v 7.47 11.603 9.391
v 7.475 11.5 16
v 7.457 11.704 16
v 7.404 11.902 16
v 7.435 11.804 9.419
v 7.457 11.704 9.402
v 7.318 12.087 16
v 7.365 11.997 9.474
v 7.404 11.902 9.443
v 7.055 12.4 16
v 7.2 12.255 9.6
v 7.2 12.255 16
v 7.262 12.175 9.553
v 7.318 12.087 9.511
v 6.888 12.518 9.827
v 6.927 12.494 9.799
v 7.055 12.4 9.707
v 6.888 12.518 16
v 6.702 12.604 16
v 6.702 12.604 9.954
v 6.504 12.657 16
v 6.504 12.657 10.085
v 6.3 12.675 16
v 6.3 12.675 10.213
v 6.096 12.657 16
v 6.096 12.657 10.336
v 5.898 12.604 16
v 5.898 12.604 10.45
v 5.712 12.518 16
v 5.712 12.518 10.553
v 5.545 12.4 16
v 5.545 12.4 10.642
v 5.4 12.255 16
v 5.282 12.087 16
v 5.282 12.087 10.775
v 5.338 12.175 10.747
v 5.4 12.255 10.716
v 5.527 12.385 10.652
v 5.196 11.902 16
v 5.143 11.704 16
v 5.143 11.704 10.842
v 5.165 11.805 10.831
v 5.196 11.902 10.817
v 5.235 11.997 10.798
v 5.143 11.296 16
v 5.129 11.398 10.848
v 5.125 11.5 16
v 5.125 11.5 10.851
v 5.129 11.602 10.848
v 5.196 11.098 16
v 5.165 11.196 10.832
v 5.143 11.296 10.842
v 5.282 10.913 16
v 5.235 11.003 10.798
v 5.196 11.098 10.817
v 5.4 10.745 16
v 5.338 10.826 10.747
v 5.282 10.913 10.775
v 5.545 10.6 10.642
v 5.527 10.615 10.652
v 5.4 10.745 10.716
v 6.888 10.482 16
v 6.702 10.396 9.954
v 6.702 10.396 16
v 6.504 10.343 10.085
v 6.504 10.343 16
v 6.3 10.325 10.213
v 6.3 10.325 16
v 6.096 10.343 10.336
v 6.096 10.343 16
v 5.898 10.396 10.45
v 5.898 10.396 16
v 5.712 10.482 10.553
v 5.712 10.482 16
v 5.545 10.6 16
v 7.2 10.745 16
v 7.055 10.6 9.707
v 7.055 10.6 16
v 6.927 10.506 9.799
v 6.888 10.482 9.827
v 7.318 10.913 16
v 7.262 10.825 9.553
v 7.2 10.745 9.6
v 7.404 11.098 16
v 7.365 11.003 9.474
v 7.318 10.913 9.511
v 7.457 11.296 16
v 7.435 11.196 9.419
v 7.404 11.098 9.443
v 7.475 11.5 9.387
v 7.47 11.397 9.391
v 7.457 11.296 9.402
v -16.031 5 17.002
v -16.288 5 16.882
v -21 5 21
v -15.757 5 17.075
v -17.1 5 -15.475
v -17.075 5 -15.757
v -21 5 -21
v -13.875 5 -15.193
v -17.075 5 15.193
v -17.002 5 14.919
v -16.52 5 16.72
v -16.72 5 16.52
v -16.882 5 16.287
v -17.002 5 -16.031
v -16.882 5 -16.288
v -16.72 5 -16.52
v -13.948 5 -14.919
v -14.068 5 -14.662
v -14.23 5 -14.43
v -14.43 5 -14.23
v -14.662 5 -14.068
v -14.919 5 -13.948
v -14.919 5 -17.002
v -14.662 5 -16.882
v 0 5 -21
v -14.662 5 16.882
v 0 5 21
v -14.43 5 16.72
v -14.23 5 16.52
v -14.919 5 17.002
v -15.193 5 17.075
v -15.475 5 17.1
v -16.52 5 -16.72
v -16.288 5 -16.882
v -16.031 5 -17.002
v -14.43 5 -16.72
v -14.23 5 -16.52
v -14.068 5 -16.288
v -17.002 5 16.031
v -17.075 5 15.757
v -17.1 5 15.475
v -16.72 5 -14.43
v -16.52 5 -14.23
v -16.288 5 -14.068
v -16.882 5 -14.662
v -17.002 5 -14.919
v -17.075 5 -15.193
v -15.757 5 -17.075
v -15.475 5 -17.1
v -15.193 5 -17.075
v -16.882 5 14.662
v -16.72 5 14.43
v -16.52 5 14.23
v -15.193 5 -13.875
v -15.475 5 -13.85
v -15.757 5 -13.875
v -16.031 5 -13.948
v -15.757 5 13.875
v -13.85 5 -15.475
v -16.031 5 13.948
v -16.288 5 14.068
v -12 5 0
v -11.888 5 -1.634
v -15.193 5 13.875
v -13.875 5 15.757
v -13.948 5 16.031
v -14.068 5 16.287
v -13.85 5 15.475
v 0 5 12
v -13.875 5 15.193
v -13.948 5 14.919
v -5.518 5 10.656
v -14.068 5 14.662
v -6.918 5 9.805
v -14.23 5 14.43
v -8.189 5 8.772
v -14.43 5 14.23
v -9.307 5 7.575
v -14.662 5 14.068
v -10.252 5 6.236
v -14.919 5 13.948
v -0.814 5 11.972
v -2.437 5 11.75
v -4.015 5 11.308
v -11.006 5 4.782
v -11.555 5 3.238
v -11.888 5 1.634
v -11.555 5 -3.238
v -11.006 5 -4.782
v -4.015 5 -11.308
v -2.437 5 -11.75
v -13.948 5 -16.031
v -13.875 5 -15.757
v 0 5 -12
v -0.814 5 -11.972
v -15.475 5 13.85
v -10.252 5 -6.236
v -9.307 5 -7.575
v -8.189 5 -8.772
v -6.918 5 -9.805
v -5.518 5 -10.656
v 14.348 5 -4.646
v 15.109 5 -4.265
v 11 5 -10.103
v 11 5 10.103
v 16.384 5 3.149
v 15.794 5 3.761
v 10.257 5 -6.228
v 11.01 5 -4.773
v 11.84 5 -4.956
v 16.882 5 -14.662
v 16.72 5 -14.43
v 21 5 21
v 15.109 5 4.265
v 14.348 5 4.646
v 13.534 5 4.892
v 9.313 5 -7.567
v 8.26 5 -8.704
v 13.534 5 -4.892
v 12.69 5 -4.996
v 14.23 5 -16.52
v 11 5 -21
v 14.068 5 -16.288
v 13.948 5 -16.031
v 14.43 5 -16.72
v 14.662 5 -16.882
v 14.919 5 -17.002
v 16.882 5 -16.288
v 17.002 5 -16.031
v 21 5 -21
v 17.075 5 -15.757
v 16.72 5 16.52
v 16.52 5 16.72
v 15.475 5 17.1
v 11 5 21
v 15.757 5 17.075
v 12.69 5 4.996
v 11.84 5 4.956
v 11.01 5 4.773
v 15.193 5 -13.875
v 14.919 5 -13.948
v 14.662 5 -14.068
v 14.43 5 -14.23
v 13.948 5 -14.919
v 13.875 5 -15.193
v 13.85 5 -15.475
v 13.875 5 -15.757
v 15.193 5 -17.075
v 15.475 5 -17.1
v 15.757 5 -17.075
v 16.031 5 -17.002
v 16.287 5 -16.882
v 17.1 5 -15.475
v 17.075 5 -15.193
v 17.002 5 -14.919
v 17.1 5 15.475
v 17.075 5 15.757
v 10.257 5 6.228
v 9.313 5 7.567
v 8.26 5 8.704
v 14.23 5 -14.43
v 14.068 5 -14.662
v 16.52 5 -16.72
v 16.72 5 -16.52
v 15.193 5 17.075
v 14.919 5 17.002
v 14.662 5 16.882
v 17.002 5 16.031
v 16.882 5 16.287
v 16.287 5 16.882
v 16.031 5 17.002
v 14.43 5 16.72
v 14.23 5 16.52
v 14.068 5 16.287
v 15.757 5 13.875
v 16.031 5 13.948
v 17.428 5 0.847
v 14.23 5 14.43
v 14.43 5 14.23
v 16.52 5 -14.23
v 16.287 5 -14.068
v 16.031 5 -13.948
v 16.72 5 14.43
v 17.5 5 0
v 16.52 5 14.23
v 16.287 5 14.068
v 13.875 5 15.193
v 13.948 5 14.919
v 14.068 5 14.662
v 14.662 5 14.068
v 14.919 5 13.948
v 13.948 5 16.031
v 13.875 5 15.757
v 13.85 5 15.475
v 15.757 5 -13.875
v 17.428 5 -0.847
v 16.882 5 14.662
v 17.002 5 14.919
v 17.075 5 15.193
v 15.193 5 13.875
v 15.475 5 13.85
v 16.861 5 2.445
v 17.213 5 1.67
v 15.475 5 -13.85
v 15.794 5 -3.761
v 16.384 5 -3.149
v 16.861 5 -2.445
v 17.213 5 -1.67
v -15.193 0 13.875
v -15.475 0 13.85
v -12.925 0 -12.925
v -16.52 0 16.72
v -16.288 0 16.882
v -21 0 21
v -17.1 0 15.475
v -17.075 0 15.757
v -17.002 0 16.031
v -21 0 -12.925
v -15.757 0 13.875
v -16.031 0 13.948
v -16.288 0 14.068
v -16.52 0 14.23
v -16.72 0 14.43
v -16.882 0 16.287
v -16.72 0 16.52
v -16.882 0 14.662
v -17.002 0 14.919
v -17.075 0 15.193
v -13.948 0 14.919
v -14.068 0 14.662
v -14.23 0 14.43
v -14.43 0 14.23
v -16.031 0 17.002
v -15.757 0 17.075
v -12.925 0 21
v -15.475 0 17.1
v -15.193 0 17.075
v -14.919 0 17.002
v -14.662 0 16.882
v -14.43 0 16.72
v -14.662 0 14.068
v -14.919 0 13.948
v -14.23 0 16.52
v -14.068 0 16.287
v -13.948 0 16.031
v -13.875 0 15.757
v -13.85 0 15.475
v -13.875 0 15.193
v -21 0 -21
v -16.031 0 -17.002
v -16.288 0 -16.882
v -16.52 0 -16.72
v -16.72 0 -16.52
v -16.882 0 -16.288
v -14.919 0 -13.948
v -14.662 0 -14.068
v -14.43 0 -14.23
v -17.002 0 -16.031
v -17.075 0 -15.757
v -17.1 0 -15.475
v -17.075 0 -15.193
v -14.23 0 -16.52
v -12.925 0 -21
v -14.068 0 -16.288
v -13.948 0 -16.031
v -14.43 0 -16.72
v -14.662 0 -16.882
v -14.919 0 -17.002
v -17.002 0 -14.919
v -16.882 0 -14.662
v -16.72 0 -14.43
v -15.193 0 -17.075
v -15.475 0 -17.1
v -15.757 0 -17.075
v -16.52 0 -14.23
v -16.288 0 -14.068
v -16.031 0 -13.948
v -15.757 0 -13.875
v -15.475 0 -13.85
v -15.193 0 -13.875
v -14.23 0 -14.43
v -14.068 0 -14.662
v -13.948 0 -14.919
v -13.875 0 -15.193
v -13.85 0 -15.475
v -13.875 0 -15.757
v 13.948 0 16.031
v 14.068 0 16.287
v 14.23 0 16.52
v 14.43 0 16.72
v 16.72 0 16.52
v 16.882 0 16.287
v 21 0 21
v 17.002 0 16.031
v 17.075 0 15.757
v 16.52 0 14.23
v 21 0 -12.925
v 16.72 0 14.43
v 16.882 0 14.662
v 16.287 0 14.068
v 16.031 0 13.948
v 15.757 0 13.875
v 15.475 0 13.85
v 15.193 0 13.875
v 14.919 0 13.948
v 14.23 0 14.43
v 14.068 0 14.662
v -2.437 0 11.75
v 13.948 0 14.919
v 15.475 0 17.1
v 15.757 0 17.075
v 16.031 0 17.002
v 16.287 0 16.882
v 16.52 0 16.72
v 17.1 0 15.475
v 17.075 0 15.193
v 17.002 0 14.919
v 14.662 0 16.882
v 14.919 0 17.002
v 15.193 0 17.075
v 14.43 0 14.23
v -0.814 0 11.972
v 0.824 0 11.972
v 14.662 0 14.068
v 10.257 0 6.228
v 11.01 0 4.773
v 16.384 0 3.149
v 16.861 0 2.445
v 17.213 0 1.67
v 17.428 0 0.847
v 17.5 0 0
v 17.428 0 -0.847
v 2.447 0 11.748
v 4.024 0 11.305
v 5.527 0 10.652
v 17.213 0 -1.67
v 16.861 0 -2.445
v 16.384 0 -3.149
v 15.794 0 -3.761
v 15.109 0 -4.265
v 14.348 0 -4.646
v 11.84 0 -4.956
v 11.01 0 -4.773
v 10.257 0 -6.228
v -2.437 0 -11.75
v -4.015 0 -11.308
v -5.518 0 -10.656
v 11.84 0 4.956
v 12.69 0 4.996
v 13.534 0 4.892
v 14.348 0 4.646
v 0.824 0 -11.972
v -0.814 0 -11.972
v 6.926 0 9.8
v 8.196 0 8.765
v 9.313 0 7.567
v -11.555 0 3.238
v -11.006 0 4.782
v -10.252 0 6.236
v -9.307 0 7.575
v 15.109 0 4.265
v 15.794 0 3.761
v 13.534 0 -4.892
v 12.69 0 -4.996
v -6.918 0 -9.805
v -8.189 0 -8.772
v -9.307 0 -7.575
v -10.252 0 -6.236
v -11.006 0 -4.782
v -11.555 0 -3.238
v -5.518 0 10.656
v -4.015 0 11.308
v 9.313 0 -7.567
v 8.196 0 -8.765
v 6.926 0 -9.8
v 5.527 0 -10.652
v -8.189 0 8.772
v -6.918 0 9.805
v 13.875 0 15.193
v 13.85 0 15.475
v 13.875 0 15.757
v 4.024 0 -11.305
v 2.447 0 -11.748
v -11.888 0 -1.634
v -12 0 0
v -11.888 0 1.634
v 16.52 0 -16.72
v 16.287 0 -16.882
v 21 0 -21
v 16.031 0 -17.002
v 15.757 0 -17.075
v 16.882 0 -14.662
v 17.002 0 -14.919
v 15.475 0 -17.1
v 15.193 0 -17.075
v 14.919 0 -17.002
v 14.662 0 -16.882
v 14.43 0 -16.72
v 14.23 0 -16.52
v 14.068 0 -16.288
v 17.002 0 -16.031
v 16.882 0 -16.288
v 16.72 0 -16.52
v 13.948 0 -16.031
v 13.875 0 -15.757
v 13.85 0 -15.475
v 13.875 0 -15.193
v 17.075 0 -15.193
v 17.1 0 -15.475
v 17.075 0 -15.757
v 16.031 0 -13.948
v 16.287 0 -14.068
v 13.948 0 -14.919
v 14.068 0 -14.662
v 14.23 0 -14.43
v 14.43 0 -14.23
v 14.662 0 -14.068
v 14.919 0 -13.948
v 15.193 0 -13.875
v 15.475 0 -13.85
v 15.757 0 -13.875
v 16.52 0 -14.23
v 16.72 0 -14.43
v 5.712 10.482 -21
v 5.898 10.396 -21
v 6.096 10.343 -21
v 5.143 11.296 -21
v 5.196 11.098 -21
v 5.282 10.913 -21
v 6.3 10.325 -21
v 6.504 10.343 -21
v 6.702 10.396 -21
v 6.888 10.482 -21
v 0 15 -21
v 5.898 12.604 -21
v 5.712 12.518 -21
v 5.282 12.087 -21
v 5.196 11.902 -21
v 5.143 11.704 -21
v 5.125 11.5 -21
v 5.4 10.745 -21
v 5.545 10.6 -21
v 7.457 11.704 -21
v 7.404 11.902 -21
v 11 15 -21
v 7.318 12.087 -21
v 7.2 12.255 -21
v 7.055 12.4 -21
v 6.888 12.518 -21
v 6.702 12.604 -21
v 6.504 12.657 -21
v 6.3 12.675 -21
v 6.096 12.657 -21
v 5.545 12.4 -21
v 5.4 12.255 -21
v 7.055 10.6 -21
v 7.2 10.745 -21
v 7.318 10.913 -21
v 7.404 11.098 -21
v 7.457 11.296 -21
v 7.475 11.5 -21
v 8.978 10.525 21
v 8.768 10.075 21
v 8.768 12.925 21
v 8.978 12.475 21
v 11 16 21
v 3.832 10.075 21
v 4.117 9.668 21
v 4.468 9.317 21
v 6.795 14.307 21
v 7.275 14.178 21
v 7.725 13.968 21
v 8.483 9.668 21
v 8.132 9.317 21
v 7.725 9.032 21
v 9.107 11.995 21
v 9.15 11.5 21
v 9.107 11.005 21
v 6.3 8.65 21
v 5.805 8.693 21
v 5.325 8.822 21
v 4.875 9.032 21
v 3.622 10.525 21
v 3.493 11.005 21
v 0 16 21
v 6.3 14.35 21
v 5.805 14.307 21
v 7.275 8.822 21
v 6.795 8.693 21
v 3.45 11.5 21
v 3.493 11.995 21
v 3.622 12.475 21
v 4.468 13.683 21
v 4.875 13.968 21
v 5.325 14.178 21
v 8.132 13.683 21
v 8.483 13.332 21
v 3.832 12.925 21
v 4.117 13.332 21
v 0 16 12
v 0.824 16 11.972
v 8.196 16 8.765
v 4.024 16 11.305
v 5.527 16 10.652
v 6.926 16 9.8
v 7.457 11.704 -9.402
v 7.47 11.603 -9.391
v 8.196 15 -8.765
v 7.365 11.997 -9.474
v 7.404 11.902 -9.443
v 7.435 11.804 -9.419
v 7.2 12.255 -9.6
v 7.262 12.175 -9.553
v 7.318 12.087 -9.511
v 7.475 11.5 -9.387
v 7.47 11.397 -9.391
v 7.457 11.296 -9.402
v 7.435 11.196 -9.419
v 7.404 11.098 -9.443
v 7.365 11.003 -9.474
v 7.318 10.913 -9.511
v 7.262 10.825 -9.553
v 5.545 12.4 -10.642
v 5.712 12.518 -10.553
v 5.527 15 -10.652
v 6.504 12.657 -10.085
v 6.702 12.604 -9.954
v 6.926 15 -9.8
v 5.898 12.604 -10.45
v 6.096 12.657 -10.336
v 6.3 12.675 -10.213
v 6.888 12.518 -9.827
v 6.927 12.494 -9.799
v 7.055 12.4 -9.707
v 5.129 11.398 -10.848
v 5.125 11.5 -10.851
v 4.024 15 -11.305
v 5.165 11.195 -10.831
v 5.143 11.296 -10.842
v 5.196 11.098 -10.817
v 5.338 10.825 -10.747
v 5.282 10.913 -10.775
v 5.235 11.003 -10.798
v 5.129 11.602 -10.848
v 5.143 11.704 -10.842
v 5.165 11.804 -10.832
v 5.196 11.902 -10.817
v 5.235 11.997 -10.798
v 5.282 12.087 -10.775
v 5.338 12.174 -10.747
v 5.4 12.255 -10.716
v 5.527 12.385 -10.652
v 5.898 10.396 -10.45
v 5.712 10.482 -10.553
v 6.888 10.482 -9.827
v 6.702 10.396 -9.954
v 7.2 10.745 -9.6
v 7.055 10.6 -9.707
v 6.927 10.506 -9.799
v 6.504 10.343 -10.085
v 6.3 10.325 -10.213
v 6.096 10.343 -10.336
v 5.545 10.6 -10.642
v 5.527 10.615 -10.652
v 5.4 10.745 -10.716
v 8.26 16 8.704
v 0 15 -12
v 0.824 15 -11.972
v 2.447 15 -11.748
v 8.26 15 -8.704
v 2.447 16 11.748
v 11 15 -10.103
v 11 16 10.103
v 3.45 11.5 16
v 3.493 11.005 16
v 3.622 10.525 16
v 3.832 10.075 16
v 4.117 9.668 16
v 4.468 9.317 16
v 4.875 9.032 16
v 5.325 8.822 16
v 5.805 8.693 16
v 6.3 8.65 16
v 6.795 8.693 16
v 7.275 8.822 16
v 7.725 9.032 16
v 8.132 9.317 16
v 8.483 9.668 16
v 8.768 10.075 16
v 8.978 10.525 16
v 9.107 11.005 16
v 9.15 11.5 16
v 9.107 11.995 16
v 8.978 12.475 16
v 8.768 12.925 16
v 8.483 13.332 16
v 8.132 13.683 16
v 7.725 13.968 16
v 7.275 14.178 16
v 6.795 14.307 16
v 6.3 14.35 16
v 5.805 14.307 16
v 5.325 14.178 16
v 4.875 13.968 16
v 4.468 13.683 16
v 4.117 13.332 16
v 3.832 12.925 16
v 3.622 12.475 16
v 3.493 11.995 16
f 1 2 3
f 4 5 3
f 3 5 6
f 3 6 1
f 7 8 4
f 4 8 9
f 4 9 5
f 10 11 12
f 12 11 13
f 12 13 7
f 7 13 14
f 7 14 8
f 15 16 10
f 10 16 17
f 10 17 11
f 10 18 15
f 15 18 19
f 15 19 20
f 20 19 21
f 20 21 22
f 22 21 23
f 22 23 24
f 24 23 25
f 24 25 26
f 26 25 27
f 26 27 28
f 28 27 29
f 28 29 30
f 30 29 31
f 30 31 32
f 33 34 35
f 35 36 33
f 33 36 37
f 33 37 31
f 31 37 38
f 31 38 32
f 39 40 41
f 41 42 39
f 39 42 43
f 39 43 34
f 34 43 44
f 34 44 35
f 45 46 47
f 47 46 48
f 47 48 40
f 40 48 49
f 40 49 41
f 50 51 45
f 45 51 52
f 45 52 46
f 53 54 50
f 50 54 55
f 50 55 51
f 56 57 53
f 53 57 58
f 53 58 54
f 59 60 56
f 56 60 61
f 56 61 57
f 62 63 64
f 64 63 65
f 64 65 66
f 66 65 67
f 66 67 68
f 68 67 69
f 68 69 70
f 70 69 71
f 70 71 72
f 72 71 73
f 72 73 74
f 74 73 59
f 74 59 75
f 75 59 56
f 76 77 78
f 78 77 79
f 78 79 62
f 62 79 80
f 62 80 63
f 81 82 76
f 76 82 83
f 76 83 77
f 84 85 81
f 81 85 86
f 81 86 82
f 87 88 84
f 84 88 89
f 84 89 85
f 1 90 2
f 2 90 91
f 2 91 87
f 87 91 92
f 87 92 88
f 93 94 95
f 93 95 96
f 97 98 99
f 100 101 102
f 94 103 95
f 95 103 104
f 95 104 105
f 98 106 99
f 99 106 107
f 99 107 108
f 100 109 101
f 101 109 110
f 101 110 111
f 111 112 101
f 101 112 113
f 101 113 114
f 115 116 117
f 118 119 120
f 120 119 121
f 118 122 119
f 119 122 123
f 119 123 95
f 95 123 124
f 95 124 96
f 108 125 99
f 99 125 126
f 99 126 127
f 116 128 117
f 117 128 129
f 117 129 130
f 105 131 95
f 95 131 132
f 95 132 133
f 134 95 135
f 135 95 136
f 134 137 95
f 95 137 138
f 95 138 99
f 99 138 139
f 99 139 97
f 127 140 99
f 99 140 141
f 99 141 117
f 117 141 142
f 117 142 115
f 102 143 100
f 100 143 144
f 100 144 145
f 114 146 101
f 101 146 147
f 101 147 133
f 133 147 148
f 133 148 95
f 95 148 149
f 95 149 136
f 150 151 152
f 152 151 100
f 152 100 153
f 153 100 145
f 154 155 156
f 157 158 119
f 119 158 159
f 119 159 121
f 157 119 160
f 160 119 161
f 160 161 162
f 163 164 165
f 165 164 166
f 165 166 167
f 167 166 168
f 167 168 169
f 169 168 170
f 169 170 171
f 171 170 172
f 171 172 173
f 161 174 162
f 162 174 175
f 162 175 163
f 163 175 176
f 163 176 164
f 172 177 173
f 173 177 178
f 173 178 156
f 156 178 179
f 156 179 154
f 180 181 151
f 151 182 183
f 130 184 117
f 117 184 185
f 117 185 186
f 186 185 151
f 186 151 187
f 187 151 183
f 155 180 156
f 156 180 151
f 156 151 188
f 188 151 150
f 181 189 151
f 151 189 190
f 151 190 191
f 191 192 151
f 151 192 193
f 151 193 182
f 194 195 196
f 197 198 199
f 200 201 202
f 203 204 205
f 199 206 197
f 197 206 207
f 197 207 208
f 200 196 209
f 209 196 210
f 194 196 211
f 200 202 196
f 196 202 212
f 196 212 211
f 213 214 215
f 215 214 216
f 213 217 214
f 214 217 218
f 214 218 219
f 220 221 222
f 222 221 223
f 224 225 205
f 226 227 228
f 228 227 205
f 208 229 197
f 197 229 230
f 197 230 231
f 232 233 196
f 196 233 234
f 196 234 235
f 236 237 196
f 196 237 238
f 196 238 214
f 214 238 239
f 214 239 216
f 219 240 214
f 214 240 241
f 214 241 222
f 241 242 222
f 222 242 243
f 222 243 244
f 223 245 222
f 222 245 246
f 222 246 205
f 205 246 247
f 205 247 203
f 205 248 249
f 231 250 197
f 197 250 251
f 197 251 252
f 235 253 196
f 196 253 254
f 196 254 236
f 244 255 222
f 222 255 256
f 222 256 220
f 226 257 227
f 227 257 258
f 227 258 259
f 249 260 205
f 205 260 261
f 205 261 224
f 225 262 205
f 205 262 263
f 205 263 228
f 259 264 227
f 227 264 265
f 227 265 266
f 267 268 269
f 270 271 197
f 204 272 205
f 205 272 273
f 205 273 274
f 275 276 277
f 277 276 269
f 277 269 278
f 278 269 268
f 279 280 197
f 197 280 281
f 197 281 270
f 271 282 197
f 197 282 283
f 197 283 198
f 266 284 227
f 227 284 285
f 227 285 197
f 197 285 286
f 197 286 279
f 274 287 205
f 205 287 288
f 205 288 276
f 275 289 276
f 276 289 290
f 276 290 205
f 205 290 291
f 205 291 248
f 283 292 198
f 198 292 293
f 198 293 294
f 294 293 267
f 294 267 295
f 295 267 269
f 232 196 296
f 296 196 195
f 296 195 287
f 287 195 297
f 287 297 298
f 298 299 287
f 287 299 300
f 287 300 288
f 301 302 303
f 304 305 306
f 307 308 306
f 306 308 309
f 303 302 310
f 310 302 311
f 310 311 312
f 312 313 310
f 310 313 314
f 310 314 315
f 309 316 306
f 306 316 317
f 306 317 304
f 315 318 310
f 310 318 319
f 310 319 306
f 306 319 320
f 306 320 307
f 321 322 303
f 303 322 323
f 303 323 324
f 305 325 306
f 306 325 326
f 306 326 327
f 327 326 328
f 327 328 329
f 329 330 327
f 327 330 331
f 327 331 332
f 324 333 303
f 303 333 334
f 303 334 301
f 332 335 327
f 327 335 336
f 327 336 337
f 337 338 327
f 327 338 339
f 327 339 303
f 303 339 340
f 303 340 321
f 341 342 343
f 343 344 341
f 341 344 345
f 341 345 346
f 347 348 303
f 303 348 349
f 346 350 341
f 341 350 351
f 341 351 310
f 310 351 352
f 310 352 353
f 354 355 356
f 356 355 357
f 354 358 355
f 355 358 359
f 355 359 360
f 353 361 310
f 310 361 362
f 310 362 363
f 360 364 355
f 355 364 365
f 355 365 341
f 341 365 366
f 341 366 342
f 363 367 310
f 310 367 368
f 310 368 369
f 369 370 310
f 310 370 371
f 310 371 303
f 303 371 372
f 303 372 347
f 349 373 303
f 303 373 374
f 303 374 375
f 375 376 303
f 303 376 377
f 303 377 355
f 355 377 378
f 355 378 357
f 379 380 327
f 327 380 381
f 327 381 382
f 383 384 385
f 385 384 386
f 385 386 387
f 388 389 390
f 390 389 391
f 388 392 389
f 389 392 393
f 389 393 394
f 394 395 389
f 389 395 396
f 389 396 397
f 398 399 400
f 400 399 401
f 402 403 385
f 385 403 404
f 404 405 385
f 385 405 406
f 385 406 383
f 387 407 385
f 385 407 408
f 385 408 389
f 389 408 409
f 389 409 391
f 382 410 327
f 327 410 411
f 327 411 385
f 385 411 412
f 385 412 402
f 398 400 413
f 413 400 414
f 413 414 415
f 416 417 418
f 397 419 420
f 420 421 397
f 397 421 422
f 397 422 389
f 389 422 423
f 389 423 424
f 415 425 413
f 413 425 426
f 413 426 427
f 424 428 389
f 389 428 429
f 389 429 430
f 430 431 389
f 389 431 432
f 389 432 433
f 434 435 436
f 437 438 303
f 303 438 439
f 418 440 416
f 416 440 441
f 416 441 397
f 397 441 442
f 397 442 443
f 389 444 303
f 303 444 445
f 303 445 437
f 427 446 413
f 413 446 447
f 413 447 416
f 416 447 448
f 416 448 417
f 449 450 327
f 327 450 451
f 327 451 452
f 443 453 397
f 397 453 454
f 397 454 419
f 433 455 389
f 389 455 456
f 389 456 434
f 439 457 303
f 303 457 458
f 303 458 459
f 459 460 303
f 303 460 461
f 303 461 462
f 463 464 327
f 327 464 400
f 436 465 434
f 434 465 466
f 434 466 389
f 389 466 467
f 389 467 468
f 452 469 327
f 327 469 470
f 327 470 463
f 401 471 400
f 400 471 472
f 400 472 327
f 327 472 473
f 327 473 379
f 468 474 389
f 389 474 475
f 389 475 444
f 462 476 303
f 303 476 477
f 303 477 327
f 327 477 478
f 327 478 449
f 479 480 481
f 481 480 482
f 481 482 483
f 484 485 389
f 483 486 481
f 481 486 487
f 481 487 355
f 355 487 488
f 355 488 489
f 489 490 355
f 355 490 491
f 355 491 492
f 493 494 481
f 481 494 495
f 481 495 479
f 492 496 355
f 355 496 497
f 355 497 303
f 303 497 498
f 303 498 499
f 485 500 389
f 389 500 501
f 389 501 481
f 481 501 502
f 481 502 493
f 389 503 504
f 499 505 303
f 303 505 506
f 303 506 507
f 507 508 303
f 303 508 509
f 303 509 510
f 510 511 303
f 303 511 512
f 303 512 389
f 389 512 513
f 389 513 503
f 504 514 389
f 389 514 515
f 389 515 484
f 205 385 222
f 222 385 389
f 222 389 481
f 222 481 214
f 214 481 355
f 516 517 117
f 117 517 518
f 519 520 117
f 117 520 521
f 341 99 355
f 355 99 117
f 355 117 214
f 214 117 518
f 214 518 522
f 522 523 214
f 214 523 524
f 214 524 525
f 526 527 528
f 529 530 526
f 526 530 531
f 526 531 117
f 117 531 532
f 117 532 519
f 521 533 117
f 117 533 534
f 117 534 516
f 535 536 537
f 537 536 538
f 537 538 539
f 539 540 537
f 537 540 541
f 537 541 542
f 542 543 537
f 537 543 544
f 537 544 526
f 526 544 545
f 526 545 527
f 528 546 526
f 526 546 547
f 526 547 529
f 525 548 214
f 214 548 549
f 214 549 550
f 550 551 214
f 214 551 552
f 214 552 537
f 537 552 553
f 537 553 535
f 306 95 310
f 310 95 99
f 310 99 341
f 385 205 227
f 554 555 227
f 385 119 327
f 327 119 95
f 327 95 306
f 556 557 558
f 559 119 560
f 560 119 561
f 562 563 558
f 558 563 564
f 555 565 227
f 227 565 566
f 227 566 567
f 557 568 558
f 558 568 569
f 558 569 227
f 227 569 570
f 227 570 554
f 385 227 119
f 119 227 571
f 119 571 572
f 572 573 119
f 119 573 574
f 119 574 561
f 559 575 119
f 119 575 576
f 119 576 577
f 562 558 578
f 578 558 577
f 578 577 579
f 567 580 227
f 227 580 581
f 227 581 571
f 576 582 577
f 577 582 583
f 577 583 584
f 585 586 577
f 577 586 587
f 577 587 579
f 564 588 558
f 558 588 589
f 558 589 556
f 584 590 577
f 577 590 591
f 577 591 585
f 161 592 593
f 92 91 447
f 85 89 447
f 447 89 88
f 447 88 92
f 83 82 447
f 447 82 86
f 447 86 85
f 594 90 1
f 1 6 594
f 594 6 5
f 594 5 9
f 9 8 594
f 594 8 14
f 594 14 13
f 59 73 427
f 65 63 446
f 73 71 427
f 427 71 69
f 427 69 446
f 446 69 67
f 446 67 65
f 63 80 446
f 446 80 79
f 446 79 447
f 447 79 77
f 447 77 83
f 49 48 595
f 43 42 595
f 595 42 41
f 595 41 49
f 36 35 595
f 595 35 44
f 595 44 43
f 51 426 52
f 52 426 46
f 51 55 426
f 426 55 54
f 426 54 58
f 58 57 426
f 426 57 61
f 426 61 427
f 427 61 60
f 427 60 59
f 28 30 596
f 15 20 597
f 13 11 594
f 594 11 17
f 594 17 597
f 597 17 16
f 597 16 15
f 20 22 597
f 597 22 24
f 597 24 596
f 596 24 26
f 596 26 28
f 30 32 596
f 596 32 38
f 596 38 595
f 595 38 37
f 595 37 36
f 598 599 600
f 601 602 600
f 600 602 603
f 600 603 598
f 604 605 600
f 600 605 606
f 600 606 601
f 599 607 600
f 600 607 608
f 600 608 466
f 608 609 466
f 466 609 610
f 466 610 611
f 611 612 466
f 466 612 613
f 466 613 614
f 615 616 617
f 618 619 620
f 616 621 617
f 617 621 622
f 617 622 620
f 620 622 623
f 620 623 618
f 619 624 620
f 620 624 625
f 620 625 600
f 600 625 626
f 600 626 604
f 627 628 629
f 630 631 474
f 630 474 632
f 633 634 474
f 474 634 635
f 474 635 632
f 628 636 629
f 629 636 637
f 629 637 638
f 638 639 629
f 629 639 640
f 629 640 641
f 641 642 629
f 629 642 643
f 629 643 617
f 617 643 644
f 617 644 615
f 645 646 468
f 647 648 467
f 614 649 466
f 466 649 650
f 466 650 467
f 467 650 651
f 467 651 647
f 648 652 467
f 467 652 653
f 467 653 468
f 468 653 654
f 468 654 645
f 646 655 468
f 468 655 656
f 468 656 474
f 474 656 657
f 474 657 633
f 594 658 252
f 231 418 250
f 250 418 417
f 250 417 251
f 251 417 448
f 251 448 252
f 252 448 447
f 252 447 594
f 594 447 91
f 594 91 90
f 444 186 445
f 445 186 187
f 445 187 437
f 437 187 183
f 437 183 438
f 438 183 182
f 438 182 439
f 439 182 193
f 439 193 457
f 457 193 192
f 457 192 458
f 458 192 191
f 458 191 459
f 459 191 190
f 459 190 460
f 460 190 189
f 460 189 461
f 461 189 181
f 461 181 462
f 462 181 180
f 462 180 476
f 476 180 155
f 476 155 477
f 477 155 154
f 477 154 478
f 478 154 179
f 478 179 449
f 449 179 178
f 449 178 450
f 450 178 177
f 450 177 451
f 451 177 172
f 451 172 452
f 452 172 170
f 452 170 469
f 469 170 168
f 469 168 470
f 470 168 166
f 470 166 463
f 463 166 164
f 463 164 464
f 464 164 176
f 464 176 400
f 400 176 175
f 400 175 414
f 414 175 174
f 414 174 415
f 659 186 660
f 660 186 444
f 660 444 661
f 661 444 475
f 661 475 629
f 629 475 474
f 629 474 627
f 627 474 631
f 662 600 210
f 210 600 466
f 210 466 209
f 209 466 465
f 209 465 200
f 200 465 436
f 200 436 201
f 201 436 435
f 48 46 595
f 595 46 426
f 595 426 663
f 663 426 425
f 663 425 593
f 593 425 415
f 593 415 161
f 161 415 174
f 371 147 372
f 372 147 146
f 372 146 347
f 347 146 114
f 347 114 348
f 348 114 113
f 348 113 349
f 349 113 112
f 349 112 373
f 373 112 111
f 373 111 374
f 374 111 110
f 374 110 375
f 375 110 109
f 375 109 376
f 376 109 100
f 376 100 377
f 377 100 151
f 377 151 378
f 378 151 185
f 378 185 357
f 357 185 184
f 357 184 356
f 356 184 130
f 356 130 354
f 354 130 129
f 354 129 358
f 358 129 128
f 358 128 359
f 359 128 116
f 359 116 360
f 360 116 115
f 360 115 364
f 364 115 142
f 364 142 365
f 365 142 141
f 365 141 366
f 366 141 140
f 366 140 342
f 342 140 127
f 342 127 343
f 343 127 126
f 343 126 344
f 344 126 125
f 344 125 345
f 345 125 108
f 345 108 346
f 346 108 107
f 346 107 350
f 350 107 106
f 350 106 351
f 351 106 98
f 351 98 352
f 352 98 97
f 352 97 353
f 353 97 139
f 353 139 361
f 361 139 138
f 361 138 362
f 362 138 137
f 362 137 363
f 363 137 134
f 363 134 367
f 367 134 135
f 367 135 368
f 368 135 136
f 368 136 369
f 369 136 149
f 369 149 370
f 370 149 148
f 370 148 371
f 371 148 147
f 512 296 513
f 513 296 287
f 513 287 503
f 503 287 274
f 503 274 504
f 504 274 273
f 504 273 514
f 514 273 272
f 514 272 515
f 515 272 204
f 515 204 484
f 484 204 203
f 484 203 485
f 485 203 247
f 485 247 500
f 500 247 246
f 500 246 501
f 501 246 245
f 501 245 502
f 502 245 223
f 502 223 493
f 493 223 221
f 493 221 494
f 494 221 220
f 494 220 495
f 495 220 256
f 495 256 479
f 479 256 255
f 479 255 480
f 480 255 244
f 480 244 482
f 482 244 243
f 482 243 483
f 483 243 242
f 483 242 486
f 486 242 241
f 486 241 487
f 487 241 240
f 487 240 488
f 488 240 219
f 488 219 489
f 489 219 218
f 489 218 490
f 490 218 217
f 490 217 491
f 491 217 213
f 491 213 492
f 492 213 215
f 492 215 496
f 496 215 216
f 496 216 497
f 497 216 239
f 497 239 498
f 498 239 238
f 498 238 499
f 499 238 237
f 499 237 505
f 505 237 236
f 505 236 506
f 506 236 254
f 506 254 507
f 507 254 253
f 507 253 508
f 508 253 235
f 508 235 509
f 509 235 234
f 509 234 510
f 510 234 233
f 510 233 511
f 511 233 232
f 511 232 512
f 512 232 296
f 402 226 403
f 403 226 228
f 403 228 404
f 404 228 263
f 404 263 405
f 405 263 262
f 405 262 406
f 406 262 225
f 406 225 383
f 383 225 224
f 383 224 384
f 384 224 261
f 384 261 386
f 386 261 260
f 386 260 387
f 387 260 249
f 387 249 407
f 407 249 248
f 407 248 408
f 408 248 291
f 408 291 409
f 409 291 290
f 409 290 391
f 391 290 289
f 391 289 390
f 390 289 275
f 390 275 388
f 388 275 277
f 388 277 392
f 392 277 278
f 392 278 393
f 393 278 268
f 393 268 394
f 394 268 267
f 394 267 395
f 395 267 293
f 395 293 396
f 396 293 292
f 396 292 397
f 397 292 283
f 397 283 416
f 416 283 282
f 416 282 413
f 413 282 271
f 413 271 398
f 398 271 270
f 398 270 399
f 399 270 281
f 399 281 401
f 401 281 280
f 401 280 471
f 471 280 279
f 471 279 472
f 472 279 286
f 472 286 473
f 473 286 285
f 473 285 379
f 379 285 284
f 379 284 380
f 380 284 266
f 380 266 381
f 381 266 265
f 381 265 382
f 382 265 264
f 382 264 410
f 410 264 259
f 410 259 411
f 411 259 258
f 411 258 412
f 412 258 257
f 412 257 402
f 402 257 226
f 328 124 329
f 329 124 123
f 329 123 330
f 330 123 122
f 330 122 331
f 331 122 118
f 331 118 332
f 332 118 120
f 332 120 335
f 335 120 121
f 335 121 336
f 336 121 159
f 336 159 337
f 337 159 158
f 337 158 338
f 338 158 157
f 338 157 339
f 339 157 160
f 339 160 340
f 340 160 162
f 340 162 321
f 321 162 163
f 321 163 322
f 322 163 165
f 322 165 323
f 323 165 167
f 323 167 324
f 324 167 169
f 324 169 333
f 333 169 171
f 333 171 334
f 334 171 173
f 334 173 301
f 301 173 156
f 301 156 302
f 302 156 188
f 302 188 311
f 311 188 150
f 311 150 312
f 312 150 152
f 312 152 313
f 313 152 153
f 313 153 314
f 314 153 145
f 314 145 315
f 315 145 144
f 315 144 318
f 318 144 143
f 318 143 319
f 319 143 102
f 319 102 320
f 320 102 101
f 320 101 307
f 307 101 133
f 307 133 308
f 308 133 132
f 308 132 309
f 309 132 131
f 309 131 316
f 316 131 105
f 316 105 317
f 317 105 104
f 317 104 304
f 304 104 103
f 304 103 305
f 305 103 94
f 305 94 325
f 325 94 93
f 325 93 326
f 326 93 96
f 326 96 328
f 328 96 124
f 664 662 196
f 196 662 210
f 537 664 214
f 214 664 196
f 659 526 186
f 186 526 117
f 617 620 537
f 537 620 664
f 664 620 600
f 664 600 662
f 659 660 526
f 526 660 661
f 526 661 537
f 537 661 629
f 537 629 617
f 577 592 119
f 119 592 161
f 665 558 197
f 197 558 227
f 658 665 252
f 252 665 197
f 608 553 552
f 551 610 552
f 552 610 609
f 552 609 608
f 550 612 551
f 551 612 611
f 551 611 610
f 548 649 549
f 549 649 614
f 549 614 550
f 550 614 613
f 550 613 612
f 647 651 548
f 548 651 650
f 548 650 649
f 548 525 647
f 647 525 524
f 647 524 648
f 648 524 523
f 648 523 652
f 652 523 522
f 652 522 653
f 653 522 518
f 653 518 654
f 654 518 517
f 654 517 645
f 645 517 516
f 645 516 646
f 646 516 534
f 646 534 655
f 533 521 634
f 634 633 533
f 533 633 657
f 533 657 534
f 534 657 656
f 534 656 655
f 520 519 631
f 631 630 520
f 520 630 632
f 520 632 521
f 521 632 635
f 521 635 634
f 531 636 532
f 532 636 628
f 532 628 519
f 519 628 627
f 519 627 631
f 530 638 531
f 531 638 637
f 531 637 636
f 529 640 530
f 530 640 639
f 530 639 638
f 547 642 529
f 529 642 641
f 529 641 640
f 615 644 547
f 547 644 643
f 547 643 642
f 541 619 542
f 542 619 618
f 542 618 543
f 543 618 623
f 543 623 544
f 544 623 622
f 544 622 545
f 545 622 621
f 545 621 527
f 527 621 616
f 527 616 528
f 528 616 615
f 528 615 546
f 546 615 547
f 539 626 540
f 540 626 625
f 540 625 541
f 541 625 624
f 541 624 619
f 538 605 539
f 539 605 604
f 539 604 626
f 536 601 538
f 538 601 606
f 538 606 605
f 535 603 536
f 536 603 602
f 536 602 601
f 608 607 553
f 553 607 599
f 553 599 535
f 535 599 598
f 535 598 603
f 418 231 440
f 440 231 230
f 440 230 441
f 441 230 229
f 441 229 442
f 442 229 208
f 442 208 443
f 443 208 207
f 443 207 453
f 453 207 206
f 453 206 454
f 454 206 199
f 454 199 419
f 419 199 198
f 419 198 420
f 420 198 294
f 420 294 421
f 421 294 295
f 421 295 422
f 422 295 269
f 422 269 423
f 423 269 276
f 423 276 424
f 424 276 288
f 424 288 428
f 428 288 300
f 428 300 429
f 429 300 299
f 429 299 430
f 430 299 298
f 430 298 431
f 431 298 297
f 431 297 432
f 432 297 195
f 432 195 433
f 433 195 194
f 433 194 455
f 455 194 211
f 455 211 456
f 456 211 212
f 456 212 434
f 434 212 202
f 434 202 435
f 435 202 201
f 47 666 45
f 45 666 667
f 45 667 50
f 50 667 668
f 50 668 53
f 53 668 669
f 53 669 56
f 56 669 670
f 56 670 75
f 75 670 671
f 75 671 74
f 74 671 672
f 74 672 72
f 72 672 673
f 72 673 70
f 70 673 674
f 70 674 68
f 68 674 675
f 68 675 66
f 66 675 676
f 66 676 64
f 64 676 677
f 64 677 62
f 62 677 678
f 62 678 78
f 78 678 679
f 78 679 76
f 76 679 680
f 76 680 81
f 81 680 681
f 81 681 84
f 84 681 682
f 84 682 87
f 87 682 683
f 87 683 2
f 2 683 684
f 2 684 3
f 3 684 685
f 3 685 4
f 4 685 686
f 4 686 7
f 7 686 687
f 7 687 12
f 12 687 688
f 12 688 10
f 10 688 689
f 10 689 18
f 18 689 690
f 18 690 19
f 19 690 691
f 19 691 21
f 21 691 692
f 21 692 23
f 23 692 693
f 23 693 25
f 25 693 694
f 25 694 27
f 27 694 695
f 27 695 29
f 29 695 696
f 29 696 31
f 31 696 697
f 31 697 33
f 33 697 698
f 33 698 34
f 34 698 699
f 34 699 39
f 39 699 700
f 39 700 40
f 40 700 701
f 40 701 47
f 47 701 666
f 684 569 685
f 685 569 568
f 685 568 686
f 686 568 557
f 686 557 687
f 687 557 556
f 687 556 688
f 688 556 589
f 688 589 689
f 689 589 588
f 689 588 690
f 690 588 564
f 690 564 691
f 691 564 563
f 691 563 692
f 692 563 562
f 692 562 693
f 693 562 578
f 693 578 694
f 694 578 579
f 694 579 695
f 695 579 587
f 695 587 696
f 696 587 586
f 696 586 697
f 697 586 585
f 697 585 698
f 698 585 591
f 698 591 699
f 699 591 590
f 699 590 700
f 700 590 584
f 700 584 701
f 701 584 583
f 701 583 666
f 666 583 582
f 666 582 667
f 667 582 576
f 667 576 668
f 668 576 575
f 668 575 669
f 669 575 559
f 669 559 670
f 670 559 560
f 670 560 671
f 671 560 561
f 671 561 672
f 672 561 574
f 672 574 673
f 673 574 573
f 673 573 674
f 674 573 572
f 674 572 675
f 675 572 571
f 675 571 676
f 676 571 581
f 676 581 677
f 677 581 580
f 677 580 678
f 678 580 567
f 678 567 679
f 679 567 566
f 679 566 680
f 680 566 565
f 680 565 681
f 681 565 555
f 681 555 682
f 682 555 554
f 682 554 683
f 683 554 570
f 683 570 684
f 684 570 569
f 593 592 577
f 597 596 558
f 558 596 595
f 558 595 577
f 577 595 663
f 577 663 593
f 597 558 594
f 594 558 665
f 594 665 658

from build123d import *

# Parameters (mm, degrees)
SKETCH1_W           = 42
SKETCH1_H           = 42
SKETCH1_R           = 12
BOSS_EXTRUDE1_DEPTH = 5
SKETCH2_R           = 1.625
CUT_EXTRUDE1_DEPTH  = 8
BOSS_EXTRUDE2_DEPTH = 10
SKETCH4_R           = 1.175
CUT_EXTRUDE2_DEPTH  = 42
SKETCH5_R           = 5
CUT_EXTRUDE3_DEPTH  = 10
SKETCH6_R           = 2.85
CUT_EXTRUDE4_DEPTH  = 5
BOSS_EXTRUDE3_DEPTH = 1


with BuildPart() as part:
    # Sketch1 → Boss-Extrude1 (new body)
    with BuildSketch(Plane(origin=(0, 0, 0), x_dir=(1, 0, 0), z_dir=(0, 1, 0))):
        Rectangle(SKETCH1_W, SKETCH1_H)
        Circle(SKETCH1_R, mode=Mode.SUBTRACT)
    extrude(amount=BOSS_EXTRUDE1_DEPTH)

    # Sketch2 → Cut-Extrude1 (cut)
    with BuildSketch(Plane(origin=(0, 5, 0), x_dir=(1, 0, 0), z_dir=(0, 1, 0))):
        with Locations((-15.475, 15.475)):
            Circle(SKETCH2_R)
        with Locations((15.475, 15.475)):
            Circle(SKETCH2_R)
        with Locations((15.475, -15.475)):
            Circle(SKETCH2_R)
        with Locations((-15.475, -15.475)):
            Circle(SKETCH2_R)
    extrude(amount=-CUT_EXTRUDE1_DEPTH, mode=Mode.SUBTRACT)

    # Sketch3 → Boss-Extrude2 (add)
    with BuildSketch(Plane(origin=(0, 5, 0), x_dir=(1, 0, 0), z_dir=(0, 1, 0))):
        with BuildLine():
            Line((0, 12), (0, 21))
            Line((0, 21), (11, 21))
            Line((11, 21), (11, 10.102949137))
            Line((11, 10.102949137), (8.260404548, 8.704350447))
            ThreePointArc((8.260404548, 8.704350447), (4.446785054, 11.145676412), (0, 12))
        make_face()
        with BuildLine():
            Line((0, -21), (11, -21))
            Line((11, -21), (11, -10.102949137))
            Line((11, -10.102949137), (8.260404548, -8.704350447))
            ThreePointArc((8.260404548, -8.704350447), (4.446785054, -11.145676412), (0, -12))
            Line((0, -12), (0, -21))
        make_face()
    extrude(amount=BOSS_EXTRUDE2_DEPTH)

    # Sketch4 → Cut-Extrude2 (cut)
    with BuildSketch(Plane.XY.offset(21)):
        with Locations((6.3, 11.5)):
            Circle(SKETCH4_R)
    extrude(amount=-CUT_EXTRUDE2_DEPTH, mode=Mode.SUBTRACT)

    # Sketch5 → Cut-Extrude3 (cut)
    with BuildSketch(Plane(origin=(0, 5, 0), x_dir=(1, 0, 0), z_dir=(0, 1, 0))):
        with Locations((12.5, 0)):
            Circle(SKETCH5_R)
    extrude(amount=-CUT_EXTRUDE3_DEPTH, mode=Mode.SUBTRACT)

    # Sketch6 → Cut-Extrude4 (cut)
    with BuildSketch(Plane.XY.offset(21)):
        with Locations((6.3, 11.5)):
            Circle(SKETCH6_R)
    extrude(amount=-CUT_EXTRUDE4_DEPTH, mode=Mode.SUBTRACT)

    # Sketch7 → Boss-Extrude3 (add)
    with BuildSketch(Plane(origin=(0, 15, 0), x_dir=(1, 0, 0), z_dir=(0, 1, 0))):
        with BuildLine():
            Line((0, -21), (11, -21))
            Line((11, -21), (11, -10.102949137))
            Line((11, -10.102949137), (8.260404548, -8.704350447))
            ThreePointArc((8.260404548, -8.704350447), (4.446785054, -11.145676412), (0, -12))
            Line((0, -12), (0, -21))
        make_face()
    extrude(amount=BOSS_EXTRUDE3_DEPTH)


solid = part.part
